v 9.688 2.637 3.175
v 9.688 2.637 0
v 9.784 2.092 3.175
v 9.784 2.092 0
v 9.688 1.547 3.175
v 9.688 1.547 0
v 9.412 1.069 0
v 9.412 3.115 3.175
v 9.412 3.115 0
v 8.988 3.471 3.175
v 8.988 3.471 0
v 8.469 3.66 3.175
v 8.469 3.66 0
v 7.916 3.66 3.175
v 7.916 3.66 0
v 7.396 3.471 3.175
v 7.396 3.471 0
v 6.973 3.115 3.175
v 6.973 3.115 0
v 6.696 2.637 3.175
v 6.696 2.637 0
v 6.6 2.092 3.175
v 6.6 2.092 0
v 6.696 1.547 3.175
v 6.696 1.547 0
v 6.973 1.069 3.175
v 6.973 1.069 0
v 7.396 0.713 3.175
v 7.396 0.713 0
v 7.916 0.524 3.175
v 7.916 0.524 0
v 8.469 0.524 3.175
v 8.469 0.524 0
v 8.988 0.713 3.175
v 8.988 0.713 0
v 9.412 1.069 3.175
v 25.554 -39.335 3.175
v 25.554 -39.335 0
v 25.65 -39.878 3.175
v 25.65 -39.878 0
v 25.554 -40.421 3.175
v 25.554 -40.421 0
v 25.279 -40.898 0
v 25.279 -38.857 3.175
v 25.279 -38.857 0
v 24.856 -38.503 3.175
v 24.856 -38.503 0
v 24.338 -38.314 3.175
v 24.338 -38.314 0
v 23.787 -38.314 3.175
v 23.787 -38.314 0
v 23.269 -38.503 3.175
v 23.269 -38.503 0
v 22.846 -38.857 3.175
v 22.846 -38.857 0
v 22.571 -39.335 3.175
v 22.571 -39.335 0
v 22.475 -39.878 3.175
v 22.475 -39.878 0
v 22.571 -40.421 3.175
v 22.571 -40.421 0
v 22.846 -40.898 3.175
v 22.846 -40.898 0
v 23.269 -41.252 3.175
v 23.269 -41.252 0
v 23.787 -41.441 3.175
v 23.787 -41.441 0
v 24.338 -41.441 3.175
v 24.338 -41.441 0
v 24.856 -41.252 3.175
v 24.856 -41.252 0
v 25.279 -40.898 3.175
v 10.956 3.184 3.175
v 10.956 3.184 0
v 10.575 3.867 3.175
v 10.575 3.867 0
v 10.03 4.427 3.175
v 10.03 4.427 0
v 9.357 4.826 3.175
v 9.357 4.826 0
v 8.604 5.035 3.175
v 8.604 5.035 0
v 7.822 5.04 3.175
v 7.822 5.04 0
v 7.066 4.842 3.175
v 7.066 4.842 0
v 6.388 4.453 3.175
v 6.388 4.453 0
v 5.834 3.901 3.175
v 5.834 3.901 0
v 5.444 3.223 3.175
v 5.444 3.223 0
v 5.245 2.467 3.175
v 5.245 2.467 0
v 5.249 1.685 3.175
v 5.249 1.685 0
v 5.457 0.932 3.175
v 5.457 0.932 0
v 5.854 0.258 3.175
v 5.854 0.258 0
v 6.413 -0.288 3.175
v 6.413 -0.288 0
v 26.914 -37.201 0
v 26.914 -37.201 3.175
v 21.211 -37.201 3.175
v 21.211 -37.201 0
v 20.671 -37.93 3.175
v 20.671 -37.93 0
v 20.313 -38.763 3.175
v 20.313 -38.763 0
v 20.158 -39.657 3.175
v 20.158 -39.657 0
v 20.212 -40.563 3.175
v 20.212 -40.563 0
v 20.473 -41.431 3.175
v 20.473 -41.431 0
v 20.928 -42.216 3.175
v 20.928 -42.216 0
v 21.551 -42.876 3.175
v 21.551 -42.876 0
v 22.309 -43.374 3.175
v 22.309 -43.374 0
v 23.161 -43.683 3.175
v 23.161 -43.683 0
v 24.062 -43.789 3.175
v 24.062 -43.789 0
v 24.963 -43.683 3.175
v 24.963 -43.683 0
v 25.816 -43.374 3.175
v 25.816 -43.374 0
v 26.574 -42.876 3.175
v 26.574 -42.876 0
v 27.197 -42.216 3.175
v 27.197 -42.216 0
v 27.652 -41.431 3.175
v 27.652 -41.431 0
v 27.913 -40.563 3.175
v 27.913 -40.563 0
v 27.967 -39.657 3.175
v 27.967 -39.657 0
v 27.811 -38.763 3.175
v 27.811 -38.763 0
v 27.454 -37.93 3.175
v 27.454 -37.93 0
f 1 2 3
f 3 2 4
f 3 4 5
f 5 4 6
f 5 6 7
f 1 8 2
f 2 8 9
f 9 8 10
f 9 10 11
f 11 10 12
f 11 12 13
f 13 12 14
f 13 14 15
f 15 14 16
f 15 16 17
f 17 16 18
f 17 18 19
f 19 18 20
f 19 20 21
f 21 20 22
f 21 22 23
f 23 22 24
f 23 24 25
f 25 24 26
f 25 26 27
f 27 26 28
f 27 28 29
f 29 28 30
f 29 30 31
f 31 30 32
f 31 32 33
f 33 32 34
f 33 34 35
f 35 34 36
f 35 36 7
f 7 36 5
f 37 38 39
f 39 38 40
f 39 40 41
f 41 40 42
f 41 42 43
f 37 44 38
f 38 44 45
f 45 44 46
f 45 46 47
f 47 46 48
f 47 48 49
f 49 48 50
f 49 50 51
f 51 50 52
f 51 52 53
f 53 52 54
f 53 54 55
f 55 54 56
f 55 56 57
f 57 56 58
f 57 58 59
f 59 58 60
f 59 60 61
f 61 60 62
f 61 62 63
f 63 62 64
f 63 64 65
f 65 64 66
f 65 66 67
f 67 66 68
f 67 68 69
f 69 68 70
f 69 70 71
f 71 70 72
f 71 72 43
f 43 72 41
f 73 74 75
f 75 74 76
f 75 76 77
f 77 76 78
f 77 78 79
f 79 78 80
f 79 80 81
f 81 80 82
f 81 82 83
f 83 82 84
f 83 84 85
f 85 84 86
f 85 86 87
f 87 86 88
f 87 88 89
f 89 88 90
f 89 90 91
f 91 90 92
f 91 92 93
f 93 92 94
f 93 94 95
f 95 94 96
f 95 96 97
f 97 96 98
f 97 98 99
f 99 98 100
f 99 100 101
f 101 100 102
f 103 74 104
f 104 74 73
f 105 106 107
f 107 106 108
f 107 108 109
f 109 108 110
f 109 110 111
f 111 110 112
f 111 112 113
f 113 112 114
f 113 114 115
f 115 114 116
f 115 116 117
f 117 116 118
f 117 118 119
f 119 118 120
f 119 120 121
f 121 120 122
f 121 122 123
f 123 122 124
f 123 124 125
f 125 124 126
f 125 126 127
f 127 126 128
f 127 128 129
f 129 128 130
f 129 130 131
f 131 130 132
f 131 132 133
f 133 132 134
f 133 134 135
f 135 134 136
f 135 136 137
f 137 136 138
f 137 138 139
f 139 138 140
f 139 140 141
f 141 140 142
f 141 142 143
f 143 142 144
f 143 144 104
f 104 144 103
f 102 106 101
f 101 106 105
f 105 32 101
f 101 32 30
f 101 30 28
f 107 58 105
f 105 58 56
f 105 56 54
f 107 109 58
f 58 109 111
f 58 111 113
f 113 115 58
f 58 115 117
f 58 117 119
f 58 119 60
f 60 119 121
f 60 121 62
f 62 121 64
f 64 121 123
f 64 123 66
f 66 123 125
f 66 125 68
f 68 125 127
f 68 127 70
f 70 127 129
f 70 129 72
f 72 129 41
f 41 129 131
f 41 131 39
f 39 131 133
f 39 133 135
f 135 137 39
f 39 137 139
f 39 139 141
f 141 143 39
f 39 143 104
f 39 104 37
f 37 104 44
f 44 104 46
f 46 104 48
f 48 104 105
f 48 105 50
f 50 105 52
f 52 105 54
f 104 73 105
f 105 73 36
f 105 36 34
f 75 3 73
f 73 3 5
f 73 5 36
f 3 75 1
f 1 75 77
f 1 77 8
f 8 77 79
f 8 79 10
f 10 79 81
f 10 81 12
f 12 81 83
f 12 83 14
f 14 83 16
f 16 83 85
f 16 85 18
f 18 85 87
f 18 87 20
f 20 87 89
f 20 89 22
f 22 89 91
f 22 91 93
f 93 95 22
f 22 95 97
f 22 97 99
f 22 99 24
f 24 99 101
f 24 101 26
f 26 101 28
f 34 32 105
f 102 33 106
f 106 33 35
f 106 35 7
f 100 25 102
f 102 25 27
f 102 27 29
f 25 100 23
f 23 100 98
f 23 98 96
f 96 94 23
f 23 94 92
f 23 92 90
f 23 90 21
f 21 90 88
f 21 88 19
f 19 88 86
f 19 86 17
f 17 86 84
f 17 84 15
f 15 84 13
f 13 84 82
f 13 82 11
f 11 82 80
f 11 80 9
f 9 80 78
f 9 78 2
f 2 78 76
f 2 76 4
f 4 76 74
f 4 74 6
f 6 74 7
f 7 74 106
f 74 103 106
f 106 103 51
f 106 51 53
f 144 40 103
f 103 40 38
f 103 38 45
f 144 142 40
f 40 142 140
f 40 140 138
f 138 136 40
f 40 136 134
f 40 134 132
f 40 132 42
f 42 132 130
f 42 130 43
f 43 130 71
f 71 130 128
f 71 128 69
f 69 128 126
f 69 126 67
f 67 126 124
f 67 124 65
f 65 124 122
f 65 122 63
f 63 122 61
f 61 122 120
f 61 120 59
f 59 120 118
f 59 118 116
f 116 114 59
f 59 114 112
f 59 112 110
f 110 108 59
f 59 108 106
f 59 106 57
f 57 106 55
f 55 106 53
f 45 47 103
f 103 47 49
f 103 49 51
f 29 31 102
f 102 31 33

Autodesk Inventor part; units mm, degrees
ref_plane "YZ Plane" through (0, 0, 0) normal (1, 0, 0) x (0, 1, 0)
ref_plane "XZ Plane" through (0, 0, 0) normal (0, 1, 0) x (-1, 0, 0)
ref_plane "XY Plane" through (0, 0, 0) normal (0, 0, 1) x (1, 0, 0)
sketch "Sketch5" plane through (0, 0, 0) normal (0, 0, 1) x (1, 0, 0)
  line L0 (8.1925, 0) -> (8.1925, 2.0926)
  point P0 (0, 0)
sketch "Sketch6" plane through (0, 0, 0) normal (0, 0, 1) x (1, 0, 0)
  circle A0 centre (8.1925, 2.0909) radius 1.5875
  point P0 (0, 0)
  dimension "d2" = 3.175
sketch "Sketch7" plane through (0, 0, 0) normal (0, 0, 1) x (1, 0, 0)
  circle A0 centre (8.1923, 2.092) radius 1.5921
  circle A1 centre (8.1923, 2.092) radius 2.9715
  circle A2 centre (24.0624, -39.8776) radius 1.5875
  circle A3 centre (24.0624, -39.8776) radius 3.9111
  line L0 (6.4132, -0.2881) -> (21.2107, -37.2008)
  line L1 (26.9141, -37.2008) -> (10.9559, 3.184)
  point P0 (0, 0)
  dimension "d4" = 3.175
extrude "Extrusion1" add sketch "Sketch7" along normal blind 3.175
properties part number "LowerArm"
